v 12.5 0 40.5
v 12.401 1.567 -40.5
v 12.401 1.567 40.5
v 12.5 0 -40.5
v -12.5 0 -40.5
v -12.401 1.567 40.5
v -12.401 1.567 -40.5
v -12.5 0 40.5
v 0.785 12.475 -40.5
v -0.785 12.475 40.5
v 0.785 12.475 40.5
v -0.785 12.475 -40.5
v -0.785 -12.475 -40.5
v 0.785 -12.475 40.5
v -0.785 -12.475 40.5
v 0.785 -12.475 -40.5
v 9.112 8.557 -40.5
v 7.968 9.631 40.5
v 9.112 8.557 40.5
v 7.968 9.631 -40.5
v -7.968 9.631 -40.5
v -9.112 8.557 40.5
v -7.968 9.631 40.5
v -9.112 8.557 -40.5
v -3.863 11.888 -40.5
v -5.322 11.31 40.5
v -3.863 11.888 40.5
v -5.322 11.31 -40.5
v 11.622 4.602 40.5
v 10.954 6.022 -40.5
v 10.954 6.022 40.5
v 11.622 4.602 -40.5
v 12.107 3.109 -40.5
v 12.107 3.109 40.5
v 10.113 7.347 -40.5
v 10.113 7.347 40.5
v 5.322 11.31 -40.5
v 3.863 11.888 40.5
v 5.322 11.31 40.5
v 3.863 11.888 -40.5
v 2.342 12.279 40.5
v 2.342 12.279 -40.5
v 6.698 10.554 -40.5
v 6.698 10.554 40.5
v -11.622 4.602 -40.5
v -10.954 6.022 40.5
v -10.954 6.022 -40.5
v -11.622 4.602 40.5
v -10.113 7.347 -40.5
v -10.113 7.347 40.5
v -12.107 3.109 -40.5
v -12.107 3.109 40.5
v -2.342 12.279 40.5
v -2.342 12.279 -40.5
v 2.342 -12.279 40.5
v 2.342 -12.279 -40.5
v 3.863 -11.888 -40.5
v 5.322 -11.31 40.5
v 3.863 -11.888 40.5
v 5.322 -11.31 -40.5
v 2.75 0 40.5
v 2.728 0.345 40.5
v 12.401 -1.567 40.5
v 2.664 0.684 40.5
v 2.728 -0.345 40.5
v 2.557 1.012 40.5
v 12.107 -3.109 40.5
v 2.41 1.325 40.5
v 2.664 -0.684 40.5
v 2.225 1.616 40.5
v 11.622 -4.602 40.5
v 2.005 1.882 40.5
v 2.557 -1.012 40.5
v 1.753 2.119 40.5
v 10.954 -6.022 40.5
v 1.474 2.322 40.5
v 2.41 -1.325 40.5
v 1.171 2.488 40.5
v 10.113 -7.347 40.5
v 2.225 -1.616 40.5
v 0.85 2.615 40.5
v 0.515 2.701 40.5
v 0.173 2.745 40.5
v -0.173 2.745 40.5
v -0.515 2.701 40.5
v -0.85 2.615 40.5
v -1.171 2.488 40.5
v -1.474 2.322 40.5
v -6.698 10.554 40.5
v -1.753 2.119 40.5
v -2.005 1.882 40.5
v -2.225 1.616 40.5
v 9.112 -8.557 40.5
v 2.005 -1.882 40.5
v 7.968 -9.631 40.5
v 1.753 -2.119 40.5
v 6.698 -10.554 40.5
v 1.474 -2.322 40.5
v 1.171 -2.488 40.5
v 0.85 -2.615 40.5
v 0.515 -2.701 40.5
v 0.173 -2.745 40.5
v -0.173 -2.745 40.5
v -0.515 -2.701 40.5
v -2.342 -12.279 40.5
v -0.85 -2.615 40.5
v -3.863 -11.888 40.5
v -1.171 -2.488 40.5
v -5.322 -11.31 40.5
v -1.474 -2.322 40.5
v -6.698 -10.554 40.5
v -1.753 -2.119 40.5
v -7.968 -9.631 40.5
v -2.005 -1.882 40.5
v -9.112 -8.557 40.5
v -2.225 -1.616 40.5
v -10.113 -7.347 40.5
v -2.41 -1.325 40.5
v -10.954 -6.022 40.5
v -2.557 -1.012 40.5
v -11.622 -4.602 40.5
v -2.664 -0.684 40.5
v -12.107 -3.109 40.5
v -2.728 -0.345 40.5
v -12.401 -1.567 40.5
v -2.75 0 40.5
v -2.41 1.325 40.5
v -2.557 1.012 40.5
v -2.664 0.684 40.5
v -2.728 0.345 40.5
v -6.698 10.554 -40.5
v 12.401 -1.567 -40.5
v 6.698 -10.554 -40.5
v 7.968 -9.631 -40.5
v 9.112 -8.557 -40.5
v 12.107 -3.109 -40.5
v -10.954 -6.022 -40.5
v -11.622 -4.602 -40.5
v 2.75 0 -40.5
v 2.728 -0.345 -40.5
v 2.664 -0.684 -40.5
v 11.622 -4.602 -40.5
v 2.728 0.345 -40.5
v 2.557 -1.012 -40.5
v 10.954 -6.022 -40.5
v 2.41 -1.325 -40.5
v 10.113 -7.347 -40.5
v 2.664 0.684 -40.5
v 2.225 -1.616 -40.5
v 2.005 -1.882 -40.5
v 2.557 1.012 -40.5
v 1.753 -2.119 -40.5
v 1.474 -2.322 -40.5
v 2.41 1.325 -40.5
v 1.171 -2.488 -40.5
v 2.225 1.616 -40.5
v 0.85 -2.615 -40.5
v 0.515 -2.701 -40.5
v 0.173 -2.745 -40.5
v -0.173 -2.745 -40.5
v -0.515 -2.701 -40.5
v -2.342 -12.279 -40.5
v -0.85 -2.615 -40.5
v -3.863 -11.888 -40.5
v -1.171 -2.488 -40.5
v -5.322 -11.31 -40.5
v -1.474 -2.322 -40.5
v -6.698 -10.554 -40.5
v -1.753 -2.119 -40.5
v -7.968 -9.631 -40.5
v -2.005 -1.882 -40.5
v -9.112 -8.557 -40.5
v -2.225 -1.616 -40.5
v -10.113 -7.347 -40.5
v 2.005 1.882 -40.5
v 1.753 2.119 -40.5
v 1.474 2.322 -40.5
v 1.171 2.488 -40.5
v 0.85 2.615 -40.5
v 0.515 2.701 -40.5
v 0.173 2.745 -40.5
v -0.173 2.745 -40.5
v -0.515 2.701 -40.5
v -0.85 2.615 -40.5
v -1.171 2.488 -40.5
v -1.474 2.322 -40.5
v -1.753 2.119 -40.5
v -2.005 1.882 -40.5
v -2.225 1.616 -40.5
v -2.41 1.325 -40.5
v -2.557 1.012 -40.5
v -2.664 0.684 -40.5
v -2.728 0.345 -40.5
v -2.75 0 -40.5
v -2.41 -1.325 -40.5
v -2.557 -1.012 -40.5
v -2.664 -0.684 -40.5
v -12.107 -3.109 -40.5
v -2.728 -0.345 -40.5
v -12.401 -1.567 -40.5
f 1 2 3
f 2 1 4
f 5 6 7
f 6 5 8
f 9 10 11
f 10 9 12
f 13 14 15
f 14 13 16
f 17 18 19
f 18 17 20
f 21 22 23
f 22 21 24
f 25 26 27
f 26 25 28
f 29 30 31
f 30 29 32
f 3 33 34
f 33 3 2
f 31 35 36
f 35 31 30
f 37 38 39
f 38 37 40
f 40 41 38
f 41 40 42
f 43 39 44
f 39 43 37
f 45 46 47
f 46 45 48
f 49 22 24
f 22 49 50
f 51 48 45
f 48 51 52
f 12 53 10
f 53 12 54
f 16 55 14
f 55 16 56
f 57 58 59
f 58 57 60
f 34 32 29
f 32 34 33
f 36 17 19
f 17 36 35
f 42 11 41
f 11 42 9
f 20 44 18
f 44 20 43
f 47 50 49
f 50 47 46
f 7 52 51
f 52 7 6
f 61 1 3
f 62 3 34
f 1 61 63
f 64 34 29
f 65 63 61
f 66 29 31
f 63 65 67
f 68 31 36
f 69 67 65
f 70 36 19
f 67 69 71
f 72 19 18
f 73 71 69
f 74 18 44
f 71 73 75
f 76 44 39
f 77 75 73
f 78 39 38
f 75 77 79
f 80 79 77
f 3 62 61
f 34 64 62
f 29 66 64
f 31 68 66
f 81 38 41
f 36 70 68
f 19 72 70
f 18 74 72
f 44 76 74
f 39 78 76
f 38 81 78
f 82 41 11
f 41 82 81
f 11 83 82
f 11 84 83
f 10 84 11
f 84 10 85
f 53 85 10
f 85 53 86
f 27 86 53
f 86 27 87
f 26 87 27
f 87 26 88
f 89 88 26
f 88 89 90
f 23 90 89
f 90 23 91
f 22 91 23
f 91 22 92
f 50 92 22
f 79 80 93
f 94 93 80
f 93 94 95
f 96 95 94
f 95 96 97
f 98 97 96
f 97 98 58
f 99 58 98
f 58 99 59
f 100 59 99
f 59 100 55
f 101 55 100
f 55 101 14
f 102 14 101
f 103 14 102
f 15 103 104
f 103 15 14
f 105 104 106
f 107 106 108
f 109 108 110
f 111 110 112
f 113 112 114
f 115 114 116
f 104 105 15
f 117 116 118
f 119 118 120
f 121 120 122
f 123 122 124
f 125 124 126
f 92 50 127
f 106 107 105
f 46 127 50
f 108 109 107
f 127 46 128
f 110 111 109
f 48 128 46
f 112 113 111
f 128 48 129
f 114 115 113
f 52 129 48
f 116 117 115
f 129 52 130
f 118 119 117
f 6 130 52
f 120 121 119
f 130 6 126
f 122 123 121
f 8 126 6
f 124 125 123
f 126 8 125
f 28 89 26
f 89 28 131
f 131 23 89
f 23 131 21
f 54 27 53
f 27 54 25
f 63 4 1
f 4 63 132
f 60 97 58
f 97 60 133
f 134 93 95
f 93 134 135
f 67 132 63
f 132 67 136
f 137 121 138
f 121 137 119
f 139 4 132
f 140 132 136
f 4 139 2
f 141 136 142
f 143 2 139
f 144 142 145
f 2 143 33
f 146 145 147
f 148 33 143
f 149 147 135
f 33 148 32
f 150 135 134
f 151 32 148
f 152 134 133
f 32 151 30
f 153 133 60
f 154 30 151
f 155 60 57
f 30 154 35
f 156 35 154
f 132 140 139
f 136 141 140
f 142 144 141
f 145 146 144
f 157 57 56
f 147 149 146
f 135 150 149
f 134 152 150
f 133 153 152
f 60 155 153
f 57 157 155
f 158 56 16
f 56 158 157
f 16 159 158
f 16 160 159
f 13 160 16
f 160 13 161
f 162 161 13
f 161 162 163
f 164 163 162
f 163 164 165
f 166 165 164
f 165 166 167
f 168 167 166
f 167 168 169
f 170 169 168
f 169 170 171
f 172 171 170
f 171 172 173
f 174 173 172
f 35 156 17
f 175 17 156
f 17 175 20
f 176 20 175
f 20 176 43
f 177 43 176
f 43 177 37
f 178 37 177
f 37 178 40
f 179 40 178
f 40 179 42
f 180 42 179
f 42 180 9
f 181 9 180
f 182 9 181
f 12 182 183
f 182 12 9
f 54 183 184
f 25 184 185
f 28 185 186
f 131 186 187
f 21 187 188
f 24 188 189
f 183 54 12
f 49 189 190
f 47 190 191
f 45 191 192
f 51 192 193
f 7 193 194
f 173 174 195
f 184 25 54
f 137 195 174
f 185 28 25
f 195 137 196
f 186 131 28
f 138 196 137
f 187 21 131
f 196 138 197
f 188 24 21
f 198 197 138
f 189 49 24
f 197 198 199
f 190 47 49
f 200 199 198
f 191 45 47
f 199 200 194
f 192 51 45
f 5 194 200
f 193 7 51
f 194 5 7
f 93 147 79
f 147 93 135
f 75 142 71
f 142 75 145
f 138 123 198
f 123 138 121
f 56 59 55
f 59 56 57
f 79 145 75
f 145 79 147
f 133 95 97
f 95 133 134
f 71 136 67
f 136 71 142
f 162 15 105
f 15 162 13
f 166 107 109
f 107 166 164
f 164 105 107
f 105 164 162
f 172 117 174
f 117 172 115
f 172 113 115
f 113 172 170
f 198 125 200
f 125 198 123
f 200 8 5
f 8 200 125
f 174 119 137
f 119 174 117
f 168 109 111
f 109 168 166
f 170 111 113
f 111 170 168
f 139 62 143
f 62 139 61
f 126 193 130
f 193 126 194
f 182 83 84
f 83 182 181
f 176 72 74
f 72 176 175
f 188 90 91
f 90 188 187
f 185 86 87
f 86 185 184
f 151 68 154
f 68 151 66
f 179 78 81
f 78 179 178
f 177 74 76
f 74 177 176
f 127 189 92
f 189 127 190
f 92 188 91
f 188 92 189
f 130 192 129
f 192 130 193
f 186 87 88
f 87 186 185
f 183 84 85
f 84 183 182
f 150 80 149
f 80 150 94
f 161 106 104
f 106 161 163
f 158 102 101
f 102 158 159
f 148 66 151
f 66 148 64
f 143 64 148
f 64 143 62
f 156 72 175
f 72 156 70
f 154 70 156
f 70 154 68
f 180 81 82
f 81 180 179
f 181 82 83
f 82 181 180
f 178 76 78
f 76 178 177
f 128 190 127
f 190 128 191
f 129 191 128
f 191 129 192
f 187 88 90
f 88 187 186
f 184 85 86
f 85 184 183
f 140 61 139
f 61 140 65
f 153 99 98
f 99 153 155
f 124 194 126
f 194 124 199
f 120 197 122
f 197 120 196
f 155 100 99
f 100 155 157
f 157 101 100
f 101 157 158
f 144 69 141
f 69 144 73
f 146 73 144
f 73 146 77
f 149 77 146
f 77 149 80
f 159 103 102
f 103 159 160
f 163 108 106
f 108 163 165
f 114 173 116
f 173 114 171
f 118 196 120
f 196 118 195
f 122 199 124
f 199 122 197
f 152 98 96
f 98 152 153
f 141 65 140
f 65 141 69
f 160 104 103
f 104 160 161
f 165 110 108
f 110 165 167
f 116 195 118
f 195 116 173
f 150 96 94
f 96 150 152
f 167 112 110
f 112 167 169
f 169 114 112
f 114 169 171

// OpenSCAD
$fn = 50;


difference() {
	union() {
		translate(v = [0, 0, -40.5000000000]) {
			cylinder(h = 81, r = 12.5000000000);
		}
	}
	union() {
		translate(v = [0, 0, -100.0000000000]) {
			cylinder(h = 200, r = 2.7500000000);
		}
	}
}
